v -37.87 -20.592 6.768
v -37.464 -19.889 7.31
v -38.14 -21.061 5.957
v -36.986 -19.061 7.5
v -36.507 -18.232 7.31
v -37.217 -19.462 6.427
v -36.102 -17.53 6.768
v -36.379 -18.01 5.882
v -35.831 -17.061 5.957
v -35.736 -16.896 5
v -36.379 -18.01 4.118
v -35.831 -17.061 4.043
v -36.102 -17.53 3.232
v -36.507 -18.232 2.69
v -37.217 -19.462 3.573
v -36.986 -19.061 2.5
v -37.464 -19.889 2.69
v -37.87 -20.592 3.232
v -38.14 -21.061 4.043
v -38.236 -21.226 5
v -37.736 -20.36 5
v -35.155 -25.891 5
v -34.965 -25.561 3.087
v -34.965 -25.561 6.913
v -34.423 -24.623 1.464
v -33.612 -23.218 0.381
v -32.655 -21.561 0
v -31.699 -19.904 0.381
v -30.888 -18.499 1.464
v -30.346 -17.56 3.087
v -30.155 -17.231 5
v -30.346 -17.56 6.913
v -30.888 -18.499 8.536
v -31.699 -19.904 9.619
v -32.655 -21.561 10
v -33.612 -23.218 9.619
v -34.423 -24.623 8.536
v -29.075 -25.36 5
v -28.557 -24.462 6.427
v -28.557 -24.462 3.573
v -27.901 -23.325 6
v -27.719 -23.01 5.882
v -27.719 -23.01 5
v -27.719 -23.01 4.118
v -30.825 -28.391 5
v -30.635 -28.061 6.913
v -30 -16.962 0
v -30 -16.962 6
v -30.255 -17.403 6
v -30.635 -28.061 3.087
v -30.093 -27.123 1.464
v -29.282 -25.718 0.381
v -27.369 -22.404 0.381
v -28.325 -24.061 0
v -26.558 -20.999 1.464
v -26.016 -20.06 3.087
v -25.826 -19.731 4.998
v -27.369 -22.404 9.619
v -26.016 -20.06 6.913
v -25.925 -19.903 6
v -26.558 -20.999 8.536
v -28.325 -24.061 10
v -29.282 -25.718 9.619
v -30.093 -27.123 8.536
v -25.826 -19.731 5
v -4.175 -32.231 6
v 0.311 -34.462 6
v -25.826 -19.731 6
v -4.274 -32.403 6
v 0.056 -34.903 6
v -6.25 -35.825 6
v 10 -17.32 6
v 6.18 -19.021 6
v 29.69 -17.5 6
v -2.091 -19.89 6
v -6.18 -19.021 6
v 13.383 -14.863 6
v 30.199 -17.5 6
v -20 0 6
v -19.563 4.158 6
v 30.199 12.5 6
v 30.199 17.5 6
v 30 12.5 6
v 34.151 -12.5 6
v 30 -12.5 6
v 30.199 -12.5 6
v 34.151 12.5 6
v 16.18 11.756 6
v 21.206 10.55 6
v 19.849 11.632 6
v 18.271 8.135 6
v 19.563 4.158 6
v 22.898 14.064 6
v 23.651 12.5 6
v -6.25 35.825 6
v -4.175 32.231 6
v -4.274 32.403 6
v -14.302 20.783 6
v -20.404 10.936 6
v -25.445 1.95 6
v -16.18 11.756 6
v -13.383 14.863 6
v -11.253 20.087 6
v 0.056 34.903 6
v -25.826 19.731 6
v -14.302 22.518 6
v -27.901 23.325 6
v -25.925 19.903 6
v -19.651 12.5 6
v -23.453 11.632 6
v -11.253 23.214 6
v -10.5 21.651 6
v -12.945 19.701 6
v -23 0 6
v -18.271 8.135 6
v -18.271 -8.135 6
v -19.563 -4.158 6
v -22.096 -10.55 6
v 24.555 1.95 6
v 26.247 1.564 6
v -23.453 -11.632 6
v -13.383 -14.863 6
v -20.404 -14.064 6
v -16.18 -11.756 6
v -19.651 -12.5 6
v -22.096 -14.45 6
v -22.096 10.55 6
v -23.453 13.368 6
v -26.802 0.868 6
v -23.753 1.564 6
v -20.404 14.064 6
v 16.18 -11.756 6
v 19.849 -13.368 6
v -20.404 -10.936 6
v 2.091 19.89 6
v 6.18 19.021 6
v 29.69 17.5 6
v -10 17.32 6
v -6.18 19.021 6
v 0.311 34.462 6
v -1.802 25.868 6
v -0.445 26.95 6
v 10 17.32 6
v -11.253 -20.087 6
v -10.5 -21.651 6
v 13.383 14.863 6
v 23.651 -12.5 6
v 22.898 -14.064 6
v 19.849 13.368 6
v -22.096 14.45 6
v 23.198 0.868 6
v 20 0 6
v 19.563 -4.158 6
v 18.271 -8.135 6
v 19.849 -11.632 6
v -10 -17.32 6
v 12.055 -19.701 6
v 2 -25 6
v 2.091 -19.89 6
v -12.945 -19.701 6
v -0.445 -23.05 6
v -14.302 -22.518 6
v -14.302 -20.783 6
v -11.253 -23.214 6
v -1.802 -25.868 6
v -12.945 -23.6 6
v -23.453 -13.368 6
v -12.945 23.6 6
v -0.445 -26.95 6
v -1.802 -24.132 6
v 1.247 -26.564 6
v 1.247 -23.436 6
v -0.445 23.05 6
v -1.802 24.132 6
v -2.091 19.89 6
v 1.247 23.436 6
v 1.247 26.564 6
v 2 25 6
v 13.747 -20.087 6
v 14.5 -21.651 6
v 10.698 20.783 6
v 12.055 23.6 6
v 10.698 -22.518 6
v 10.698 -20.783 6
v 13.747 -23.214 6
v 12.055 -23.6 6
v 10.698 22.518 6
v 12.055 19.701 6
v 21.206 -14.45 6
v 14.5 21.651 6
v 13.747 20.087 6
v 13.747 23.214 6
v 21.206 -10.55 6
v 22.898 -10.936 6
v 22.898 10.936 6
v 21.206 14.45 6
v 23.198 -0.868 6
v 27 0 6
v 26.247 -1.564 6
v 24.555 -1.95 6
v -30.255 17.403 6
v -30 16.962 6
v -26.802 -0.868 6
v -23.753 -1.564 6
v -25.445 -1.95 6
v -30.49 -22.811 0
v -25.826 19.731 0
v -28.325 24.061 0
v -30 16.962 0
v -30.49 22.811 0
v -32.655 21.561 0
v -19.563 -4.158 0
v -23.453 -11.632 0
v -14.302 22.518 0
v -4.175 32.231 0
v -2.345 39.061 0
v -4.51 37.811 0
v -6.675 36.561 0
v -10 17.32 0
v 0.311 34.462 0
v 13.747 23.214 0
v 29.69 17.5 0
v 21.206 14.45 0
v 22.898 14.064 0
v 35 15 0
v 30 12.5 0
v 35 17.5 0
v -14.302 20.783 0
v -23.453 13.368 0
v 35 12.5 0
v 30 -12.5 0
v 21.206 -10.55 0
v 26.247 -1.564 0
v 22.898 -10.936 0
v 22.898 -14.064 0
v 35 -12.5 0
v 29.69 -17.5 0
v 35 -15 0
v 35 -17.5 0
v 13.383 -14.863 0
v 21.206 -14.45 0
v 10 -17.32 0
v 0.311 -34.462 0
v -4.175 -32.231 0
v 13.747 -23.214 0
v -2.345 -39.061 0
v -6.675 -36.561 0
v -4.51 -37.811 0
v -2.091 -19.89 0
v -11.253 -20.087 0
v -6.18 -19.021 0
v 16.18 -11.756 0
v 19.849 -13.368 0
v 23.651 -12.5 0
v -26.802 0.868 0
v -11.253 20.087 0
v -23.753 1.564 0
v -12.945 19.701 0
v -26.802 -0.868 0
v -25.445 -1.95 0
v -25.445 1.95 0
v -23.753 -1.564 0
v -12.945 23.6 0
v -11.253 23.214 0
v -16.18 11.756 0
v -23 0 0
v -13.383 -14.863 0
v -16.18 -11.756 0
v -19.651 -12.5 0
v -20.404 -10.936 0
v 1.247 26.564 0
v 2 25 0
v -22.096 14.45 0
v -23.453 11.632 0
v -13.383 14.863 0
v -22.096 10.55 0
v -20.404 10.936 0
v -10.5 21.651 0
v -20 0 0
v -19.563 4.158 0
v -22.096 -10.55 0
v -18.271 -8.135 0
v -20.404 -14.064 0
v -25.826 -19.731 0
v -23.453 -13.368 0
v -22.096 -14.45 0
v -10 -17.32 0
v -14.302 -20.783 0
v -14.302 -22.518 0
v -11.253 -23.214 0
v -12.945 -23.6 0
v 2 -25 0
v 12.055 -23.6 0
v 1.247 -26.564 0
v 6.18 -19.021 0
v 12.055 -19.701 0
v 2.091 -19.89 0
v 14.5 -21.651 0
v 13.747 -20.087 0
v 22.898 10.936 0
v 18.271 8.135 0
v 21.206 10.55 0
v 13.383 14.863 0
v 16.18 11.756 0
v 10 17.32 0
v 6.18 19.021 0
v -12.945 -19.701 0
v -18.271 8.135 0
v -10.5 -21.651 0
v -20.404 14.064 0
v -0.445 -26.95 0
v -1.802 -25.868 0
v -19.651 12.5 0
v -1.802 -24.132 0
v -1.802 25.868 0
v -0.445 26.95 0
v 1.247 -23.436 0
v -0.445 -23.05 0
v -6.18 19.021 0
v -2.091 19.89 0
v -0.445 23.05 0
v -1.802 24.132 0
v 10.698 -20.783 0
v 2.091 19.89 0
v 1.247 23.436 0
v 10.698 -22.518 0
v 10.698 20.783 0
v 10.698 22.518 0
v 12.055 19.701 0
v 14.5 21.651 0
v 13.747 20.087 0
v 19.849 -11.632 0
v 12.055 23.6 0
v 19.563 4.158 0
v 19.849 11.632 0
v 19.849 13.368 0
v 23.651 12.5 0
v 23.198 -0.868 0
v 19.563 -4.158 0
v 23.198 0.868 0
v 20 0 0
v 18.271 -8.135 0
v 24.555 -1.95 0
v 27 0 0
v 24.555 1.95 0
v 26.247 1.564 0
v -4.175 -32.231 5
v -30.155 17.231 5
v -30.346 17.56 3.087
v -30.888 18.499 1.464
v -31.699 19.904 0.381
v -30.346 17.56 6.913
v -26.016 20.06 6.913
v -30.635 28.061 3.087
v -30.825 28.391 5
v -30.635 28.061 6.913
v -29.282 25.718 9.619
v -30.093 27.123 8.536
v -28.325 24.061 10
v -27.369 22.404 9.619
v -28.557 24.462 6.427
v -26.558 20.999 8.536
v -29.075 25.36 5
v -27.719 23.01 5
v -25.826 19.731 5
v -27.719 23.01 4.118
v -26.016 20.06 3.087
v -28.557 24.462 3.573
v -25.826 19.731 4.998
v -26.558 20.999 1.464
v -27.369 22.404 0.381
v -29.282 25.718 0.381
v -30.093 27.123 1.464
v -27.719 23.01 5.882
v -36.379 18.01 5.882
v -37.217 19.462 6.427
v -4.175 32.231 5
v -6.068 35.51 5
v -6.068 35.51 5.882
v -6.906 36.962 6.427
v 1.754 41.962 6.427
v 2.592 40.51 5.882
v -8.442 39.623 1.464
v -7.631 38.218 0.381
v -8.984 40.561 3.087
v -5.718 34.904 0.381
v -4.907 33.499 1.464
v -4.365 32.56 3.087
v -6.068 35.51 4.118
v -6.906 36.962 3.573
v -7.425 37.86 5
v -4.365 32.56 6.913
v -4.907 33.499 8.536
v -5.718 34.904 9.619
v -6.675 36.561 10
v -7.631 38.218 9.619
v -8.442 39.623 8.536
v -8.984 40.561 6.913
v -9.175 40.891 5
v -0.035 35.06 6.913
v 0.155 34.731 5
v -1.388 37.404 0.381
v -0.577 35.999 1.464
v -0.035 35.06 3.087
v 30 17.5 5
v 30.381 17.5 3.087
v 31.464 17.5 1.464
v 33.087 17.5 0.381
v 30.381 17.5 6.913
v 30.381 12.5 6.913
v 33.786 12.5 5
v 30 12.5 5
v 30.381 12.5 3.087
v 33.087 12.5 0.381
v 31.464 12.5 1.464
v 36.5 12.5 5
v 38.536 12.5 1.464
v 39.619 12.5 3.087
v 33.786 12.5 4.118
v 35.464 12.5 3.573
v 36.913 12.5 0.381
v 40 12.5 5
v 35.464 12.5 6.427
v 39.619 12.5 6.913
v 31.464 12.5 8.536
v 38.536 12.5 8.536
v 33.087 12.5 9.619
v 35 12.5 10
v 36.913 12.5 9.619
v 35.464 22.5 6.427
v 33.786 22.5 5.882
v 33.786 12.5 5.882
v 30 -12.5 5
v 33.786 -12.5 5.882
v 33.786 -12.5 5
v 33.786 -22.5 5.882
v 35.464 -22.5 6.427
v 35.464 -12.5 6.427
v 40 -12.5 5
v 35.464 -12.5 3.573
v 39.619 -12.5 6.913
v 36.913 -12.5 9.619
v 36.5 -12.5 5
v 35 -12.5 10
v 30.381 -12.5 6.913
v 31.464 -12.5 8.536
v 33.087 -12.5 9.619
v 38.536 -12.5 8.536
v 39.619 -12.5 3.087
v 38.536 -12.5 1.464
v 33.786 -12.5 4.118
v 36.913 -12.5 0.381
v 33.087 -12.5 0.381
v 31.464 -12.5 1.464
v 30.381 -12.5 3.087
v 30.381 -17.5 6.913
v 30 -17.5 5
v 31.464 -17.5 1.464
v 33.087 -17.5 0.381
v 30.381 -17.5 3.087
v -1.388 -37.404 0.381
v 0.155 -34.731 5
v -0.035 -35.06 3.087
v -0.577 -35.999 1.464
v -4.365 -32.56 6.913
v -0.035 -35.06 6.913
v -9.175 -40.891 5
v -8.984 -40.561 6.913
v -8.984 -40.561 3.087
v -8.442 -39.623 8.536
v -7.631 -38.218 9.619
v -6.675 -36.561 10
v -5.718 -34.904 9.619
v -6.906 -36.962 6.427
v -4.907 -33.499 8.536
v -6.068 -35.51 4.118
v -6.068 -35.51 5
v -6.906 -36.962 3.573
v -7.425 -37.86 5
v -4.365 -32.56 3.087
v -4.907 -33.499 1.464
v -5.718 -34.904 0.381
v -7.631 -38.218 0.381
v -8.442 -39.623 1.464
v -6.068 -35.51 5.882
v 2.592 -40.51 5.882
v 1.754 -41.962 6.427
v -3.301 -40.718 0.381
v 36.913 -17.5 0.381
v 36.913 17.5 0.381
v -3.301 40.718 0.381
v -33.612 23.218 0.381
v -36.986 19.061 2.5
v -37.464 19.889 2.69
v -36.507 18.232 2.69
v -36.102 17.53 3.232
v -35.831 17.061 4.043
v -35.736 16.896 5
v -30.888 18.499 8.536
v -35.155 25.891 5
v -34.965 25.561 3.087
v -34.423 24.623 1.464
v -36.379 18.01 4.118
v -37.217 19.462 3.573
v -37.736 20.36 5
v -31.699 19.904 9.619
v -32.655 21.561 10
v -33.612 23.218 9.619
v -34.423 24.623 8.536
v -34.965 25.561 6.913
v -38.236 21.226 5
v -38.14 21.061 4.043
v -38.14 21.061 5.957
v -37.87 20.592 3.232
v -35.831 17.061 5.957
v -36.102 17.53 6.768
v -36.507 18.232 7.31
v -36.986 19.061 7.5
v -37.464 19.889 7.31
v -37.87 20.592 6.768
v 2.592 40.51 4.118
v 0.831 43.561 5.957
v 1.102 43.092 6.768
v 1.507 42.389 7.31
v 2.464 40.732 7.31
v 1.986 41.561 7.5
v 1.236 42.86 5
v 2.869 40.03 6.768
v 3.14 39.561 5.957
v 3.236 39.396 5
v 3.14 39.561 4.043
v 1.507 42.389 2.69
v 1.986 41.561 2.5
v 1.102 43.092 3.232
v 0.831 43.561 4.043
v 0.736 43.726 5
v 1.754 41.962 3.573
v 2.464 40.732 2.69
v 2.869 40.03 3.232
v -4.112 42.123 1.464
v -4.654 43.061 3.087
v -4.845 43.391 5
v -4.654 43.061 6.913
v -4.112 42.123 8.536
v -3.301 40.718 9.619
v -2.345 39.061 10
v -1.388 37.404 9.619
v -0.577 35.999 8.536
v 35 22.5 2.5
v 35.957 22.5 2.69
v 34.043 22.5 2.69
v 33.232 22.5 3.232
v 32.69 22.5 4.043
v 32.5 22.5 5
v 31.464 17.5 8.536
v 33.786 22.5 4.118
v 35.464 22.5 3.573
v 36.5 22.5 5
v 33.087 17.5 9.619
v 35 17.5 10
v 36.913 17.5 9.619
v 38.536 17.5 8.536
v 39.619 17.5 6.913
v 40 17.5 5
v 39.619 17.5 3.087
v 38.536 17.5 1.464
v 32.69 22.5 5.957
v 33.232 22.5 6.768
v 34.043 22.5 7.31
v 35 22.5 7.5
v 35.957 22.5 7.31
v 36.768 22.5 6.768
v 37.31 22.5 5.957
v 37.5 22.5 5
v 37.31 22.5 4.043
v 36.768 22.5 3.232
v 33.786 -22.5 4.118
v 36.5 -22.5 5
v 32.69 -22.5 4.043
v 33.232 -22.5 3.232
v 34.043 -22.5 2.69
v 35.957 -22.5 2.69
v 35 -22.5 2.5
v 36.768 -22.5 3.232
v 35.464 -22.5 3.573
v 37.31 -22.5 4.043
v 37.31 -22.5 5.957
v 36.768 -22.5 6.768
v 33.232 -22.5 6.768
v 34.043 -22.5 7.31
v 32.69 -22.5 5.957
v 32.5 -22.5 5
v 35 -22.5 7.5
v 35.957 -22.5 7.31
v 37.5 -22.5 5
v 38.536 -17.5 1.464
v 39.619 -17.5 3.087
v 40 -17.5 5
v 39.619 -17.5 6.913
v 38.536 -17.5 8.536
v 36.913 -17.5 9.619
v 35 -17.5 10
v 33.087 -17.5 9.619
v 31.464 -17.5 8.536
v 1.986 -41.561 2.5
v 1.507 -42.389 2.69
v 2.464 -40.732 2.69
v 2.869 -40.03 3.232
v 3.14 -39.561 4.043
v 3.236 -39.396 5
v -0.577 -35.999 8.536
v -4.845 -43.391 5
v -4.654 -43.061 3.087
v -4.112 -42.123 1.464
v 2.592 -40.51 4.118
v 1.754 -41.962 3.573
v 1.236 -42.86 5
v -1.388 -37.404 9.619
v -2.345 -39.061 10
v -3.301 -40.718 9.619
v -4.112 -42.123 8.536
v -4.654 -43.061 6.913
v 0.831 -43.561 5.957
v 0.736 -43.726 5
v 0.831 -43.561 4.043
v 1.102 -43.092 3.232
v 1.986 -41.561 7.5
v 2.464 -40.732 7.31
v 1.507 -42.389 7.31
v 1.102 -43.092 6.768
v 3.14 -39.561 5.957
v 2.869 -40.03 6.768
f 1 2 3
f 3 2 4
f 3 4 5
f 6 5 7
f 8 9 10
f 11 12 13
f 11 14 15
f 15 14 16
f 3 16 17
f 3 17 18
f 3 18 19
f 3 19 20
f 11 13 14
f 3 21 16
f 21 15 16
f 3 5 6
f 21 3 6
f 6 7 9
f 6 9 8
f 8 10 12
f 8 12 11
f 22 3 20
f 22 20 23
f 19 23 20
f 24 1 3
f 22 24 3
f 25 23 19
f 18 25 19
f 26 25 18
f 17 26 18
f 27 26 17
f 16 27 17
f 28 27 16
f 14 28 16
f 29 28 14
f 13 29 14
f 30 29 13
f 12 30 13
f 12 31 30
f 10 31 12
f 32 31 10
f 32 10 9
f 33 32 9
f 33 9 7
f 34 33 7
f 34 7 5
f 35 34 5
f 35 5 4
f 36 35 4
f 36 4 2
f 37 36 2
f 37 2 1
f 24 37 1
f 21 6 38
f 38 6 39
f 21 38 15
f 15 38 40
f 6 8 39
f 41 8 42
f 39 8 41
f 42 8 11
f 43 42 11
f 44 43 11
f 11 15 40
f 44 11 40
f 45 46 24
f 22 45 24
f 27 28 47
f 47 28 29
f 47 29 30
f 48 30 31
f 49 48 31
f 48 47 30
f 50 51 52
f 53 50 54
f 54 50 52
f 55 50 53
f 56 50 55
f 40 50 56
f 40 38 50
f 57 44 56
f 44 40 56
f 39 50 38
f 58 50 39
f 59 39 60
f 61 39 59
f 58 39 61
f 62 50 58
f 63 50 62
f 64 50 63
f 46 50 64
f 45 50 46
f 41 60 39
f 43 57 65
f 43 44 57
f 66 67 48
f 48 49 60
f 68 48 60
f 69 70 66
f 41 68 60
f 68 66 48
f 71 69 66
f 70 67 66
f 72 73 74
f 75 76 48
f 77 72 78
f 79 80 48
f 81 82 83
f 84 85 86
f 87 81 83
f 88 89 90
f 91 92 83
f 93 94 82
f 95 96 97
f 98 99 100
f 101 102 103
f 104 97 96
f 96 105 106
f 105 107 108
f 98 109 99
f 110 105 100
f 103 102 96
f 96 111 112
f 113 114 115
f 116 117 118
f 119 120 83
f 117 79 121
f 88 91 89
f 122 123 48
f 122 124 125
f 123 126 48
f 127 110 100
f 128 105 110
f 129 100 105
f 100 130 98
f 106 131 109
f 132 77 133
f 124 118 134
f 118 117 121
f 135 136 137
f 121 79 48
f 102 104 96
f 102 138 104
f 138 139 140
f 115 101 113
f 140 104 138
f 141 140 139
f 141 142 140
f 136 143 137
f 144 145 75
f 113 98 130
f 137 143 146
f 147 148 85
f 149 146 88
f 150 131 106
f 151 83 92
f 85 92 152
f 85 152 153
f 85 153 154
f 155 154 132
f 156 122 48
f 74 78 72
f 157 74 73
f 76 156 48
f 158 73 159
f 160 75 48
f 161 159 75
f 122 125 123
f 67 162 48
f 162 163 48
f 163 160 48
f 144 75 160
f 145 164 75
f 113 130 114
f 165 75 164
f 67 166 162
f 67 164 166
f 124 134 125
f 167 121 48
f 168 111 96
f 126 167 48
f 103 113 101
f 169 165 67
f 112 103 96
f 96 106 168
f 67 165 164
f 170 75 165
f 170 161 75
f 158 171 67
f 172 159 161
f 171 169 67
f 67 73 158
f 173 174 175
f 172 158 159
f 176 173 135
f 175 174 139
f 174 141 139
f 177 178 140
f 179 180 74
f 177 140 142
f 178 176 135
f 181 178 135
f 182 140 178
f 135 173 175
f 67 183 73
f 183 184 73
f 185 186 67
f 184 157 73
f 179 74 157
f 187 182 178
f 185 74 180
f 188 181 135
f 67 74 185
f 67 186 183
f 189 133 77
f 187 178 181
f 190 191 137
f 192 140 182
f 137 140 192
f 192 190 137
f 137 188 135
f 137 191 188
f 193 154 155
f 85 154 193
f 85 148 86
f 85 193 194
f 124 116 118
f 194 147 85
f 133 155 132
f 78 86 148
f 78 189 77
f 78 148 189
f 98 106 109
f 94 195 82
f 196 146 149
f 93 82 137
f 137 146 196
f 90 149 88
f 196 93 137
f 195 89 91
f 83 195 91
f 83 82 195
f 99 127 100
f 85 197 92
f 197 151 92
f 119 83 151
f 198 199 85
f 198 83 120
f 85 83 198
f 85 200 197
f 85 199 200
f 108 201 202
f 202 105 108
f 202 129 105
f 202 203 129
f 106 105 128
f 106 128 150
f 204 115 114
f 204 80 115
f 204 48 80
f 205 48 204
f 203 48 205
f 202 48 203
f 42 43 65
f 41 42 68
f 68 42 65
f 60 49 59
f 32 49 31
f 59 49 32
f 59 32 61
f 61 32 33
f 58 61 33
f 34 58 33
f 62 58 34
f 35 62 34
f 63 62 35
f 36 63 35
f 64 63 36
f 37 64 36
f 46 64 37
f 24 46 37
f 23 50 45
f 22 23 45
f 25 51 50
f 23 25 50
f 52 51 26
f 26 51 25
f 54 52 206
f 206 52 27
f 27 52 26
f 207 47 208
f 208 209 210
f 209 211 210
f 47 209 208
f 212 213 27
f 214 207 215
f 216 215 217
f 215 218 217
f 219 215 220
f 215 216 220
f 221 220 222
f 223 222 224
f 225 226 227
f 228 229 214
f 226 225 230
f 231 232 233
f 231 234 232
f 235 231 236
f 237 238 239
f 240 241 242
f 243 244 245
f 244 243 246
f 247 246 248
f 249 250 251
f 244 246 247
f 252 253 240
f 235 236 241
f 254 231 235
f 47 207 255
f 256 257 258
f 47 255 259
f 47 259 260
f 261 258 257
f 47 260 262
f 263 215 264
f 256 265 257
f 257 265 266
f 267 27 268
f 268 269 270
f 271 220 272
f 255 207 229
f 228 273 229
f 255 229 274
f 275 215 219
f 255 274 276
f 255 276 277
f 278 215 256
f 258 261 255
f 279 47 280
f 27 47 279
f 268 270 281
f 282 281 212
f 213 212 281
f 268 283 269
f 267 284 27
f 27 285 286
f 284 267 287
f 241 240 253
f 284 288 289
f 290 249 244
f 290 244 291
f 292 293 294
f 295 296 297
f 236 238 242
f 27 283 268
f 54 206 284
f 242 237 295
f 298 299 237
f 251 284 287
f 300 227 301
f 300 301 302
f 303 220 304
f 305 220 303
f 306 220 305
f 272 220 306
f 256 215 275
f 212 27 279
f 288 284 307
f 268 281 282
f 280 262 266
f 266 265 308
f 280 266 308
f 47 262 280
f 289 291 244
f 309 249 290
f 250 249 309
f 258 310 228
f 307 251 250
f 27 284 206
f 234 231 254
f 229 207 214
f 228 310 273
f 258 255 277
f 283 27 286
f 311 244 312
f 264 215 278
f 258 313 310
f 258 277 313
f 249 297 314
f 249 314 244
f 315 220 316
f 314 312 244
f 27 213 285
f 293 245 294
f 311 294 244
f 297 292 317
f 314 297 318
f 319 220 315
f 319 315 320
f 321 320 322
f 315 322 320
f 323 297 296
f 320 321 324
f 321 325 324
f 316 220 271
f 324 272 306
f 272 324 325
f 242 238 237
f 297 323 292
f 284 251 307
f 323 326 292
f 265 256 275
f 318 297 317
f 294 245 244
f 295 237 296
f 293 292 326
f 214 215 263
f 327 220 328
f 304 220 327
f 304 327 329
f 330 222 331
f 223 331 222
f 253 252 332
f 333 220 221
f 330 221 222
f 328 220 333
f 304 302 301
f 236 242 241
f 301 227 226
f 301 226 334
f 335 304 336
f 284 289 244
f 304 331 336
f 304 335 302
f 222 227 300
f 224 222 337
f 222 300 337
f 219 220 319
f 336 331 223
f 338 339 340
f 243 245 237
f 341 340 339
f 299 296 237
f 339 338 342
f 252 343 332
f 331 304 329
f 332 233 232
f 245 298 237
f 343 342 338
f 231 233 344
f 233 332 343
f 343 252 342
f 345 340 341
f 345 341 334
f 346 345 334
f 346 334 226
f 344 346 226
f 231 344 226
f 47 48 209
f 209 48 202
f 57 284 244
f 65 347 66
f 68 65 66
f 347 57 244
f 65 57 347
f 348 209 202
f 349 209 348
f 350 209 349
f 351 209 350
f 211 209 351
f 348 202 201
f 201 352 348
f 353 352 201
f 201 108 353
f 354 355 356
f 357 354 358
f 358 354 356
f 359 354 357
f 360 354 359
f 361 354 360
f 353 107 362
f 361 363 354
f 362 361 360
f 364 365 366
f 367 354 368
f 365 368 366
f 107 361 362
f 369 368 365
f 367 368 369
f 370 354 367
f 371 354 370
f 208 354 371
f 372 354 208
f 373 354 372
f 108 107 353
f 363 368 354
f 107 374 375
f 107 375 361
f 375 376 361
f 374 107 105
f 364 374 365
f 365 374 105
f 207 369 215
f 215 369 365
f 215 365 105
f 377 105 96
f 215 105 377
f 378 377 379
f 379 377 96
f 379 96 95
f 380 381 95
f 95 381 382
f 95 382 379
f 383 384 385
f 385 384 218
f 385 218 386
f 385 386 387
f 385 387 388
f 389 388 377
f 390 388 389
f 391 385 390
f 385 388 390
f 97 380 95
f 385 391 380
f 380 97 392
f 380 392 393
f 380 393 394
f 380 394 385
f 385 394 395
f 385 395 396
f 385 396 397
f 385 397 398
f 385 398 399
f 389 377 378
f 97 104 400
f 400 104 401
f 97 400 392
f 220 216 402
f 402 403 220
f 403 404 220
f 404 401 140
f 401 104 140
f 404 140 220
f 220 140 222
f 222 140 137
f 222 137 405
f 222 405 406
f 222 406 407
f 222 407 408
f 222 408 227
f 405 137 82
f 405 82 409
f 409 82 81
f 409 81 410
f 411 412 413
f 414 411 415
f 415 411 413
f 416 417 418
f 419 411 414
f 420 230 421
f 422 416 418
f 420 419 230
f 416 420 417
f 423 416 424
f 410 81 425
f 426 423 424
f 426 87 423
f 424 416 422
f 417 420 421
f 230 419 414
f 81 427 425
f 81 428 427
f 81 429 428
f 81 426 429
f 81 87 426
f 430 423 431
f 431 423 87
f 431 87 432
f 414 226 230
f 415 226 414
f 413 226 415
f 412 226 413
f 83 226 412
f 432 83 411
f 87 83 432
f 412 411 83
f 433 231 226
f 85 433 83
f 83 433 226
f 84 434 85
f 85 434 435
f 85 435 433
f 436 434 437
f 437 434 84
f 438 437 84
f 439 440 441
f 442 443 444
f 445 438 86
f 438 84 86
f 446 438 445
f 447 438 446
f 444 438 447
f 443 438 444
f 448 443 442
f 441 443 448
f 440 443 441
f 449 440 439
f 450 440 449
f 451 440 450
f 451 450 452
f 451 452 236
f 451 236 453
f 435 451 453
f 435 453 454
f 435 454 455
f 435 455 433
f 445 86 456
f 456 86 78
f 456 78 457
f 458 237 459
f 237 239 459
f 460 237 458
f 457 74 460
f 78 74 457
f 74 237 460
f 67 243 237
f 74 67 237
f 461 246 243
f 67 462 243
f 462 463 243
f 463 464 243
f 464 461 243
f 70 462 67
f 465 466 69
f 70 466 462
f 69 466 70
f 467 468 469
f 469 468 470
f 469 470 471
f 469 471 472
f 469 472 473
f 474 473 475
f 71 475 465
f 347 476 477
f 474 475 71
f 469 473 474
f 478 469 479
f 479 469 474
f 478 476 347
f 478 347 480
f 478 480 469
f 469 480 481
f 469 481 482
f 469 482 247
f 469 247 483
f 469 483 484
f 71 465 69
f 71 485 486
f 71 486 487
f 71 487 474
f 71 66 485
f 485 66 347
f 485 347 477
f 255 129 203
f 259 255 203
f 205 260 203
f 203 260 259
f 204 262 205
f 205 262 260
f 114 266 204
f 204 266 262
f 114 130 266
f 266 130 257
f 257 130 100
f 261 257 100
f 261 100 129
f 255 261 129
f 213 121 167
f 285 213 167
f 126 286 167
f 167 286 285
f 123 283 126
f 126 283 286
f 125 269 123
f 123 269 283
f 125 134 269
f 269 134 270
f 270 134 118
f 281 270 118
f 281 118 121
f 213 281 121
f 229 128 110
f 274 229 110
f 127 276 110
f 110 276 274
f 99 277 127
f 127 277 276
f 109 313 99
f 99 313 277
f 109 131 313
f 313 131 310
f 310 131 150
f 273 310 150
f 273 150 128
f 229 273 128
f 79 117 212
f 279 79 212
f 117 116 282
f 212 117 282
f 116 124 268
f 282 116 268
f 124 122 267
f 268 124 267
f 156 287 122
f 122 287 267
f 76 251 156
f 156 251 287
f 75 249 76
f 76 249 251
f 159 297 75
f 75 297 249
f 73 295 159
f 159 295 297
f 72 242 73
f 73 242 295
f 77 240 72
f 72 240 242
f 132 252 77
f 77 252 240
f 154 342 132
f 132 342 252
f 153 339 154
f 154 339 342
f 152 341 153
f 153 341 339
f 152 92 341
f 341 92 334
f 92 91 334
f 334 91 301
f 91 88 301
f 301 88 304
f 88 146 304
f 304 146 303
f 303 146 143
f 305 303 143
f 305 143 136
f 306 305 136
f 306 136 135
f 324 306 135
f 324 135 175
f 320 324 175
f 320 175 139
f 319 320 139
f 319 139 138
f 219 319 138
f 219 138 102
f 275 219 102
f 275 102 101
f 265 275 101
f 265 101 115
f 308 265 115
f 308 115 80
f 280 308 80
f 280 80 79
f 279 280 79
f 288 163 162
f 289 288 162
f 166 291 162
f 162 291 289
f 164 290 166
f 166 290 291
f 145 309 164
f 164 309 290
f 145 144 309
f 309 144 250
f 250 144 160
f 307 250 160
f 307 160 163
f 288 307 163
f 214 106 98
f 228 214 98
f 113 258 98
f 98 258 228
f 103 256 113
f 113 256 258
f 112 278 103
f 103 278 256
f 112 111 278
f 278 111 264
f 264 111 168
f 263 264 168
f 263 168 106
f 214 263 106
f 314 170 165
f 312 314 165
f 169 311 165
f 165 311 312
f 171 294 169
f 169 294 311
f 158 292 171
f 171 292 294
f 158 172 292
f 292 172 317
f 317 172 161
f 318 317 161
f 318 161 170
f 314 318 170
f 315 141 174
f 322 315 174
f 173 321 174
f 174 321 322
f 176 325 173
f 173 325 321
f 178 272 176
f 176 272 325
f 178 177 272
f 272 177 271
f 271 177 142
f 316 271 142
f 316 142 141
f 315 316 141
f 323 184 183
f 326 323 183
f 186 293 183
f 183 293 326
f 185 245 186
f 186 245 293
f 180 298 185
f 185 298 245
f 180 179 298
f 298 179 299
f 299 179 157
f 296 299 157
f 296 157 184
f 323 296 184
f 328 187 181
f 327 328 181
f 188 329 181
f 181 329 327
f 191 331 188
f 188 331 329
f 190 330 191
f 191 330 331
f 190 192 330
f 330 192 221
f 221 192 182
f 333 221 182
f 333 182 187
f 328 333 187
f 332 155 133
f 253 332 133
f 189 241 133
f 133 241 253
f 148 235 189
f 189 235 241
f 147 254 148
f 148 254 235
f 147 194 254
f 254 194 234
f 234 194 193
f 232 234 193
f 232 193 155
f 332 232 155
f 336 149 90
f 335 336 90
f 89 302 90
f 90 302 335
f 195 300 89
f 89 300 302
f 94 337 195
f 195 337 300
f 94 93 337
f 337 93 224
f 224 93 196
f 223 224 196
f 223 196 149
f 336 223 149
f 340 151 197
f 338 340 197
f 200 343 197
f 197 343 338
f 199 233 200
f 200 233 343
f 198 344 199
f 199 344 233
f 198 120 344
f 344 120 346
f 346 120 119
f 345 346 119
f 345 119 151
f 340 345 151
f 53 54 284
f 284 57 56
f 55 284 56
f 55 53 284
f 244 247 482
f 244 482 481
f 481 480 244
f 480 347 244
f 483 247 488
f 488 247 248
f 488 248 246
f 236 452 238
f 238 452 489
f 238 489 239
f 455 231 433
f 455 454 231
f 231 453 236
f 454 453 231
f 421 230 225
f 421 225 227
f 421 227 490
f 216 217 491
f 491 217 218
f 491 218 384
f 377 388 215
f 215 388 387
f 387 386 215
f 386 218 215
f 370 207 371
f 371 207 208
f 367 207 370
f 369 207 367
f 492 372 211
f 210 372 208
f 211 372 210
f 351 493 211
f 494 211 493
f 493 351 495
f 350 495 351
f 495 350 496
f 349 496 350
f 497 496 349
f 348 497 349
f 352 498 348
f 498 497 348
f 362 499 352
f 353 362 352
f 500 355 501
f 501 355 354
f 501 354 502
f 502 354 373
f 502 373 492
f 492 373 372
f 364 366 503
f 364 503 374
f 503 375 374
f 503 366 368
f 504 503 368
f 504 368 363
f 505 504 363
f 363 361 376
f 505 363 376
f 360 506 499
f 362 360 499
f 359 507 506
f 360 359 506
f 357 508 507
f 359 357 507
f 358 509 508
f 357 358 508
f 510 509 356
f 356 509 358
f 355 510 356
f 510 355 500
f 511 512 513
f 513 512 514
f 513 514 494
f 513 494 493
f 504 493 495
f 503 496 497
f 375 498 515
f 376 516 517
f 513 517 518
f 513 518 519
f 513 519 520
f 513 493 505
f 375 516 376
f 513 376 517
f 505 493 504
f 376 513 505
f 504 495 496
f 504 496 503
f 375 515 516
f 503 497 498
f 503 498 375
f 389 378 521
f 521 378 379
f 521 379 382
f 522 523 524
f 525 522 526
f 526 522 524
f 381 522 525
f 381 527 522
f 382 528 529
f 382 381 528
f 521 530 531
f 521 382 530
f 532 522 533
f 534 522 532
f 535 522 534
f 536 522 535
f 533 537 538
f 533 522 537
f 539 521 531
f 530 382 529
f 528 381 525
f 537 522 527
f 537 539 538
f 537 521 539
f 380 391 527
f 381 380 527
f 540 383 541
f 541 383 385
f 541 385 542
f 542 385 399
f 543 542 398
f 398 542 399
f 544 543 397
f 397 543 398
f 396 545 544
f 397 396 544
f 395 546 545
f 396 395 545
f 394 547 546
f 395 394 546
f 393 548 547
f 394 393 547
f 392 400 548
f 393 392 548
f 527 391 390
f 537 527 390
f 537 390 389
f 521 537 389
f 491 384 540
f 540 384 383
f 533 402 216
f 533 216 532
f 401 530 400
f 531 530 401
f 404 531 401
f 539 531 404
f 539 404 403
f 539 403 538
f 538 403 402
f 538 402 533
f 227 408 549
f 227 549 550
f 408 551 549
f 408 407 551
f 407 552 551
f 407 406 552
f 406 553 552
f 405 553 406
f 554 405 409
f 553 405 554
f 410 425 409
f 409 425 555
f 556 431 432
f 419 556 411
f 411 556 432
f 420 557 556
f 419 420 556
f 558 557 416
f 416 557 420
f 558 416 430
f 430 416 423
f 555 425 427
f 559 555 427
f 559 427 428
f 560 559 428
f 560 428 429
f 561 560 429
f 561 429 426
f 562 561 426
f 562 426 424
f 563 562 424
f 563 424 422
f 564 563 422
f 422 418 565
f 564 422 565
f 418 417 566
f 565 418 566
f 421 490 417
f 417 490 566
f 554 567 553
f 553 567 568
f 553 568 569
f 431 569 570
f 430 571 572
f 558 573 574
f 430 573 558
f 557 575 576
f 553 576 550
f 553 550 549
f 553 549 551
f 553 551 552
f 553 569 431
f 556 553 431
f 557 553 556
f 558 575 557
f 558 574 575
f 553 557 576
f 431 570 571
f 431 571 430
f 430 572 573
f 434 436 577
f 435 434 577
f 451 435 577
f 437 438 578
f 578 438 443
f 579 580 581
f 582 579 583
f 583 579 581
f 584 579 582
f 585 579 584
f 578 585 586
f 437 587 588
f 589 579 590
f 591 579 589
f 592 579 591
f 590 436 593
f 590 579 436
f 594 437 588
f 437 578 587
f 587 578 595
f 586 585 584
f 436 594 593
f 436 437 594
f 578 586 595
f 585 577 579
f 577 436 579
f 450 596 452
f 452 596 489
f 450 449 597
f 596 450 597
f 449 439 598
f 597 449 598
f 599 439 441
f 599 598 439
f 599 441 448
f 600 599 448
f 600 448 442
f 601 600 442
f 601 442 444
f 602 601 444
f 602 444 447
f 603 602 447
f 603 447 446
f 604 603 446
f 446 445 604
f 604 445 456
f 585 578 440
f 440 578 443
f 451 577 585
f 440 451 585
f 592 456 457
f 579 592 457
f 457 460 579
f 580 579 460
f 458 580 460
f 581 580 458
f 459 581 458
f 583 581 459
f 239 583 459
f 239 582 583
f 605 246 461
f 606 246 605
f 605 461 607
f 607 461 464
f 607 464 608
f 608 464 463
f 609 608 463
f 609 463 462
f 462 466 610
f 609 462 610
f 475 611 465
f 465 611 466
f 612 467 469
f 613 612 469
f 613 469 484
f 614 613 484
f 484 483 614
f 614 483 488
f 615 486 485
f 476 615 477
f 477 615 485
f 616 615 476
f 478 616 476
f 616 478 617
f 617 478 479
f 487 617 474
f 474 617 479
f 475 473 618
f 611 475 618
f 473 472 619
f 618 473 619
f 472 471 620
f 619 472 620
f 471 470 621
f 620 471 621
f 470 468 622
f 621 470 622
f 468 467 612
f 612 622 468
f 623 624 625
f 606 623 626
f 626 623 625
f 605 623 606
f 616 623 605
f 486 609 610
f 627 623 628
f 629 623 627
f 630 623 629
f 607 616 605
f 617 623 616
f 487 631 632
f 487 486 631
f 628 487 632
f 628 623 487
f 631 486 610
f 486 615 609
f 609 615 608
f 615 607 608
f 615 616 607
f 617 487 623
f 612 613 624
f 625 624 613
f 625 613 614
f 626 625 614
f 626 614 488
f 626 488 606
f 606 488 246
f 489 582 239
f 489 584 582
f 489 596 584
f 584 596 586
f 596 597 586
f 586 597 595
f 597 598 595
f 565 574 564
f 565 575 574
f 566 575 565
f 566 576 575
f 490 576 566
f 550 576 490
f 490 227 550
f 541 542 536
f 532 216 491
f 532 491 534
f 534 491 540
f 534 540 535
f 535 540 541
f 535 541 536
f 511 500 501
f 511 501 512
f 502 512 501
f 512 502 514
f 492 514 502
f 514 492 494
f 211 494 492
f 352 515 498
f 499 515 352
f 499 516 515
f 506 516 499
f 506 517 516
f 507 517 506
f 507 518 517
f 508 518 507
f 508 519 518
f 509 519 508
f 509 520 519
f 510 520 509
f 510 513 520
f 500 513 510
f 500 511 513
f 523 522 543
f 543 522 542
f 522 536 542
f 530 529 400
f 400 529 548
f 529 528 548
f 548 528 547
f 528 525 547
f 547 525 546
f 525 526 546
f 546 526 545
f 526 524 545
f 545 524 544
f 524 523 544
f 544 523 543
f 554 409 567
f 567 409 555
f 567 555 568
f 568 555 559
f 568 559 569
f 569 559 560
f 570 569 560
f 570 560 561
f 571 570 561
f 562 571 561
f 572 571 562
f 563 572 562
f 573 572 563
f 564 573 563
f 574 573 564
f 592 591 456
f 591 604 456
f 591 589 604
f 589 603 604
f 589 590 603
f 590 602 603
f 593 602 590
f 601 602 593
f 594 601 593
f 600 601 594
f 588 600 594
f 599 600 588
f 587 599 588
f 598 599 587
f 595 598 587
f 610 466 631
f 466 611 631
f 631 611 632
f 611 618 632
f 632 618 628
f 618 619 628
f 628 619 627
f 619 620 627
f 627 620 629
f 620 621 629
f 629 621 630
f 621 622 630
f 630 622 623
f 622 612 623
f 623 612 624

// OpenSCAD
// file: delta_mount_module.scad
// ширина промежутка между выступающими креплениями
width=45;

// диаметр отверстия для крепления ball-joint-ов
d_bolt = 3;
r_bolt = d_bolt/2;

// ширина выступающих креплений
A = 5;
// ширина конуса
A_C = 5;
// толщина крепления,
H_z = 6;
// диаметр конуса
D_C = 10;
R_C = D_C/2;
// длина выступающих крепления, учитывать что они частично утоплены в гайку
L2 = 10;

inside = false;





// выступающее крепление ball-joint-а
// left - с какой стороны находится сужающийся цилиндр
// до смещения располагается в центре (учитывать при рассчёте смещения)
module mount(left=true) {
	translate([0, -L2/2, 0]) rotate(a=90, v=[0,0,1]) {

	  difference() {
		union() {
			cube(size=[L2, A, H_z], center=true);

			translate([0,0,R_C-H_z/2]) {
				translate([L2/2, 0, 0]) rotate(a=90, v=[1,0,0])
				cylinder(r=R_C, h=A, center=true);

				if (left) {
					translate([L2/2, A/2+A_C, 0]) rotate(a=90, v=[1,0,0])
					cylinder(r2=R_C, r1=r_bolt+1, h=A_C);
				} else {
					translate([L2/2, -A/2-A_C, 0]) rotate(a=90, v=[1,0,0])
					cylinder(r1=R_C, r2=r_bolt+1, h=A_C);
				}
			}
		}
		translate([L2/2, 0, R_C-H_z/2]) rotate(a=90, v=[1,0,0])
		cylinder(r=r_bolt, h=A*3, center=true);
	}

	}
};



module delta_mount() {
	w = -width/2 + A/2 + A_C;
	translate([w, 0, 0]) mount(!inside);
	mirror([1,0,0]) translate([w, 0, 0]) mount(!inside);
}
// main file
/*
	все размеры для удобства можно считать в миллиметрах
*/

include <delta_mount_module.scad>;

// толщина всего элемента
H = 6;

// диаметр круглого большого отверстия в центре
D = 40;
R = D/2;

// минимальная ширина стенок гайки
thikness = 10;

// размеры используемые при построении гайки
base = R + thikness;
l = base*sqrt(3)/3;
L = sqrt(l*l + base*base);

// диаметр отверстия для крепления, которых 12 штук по вокруг большого отверстия
d = 4;
r = d/2;

// размеры используемые для размещения отверстий для крепления
r_base = R + thikness/2;
r_l = r_base/2;
r_L = sqrt(r_base*r_base - r_l*r_l);



// гайка с отверстиями - из шестиугольника вычтены отверстия
difference() {
	union() {
		// 6-angle
		linear_extrude(height = H) {
			polygon(points=[ [base, -l], [base, l], [0, L], [-base, l], [-base, -l], [0, -L] ]);

		}

		// далее 3 пары выступающих креплений


		rotate(a=30, v=[0,0,1]) translate([0, R+thikness*1.5, H/2]) delta_mount();

		rotate(a=150, v=[0,0,1]) translate([0, R+thikness*1.5, H/2]) delta_mount();

		rotate(a=270, v=[0,0,1]) translate([0, R+thikness*1.5, H/2]) delta_mount();

	}
	{
		// Hole in center
		cylinder(h = H, r = R);

		translate([r_base, 0, 0]) cylinder(h = H*10, r = r);
		translate([-r_base, 0, 0]) cylinder(h = H*10, r = r);

		translate([-r_L, r_l, 0]) cylinder(h = H*10, r = r);
		translate([-r_L, -r_l, 0]) cylinder(h = H*10, r = r);

		translate([-r_l, r_L, 0]) cylinder(h = H*10, r = r);
		translate([-r_l, -r_L, 0]) cylinder(h = H*10, r = r);

		translate([r_L, r_l, 0]) cylinder(h = H*10, r = r);
		translate([r_L, -r_l, 0]) cylinder(h = H*10, r = r);

		translate([r_l, r_L, 0]) cylinder(h = H*10, r = r);
		translate([r_l, -r_L, 0]) cylinder(h = H*10, r = r);

		translate([0, r_base, 0]) cylinder(h = H*10, r = r);
		translate([0, -r_base, 0]) cylinder(h = H*10, r = r);
	}
}
